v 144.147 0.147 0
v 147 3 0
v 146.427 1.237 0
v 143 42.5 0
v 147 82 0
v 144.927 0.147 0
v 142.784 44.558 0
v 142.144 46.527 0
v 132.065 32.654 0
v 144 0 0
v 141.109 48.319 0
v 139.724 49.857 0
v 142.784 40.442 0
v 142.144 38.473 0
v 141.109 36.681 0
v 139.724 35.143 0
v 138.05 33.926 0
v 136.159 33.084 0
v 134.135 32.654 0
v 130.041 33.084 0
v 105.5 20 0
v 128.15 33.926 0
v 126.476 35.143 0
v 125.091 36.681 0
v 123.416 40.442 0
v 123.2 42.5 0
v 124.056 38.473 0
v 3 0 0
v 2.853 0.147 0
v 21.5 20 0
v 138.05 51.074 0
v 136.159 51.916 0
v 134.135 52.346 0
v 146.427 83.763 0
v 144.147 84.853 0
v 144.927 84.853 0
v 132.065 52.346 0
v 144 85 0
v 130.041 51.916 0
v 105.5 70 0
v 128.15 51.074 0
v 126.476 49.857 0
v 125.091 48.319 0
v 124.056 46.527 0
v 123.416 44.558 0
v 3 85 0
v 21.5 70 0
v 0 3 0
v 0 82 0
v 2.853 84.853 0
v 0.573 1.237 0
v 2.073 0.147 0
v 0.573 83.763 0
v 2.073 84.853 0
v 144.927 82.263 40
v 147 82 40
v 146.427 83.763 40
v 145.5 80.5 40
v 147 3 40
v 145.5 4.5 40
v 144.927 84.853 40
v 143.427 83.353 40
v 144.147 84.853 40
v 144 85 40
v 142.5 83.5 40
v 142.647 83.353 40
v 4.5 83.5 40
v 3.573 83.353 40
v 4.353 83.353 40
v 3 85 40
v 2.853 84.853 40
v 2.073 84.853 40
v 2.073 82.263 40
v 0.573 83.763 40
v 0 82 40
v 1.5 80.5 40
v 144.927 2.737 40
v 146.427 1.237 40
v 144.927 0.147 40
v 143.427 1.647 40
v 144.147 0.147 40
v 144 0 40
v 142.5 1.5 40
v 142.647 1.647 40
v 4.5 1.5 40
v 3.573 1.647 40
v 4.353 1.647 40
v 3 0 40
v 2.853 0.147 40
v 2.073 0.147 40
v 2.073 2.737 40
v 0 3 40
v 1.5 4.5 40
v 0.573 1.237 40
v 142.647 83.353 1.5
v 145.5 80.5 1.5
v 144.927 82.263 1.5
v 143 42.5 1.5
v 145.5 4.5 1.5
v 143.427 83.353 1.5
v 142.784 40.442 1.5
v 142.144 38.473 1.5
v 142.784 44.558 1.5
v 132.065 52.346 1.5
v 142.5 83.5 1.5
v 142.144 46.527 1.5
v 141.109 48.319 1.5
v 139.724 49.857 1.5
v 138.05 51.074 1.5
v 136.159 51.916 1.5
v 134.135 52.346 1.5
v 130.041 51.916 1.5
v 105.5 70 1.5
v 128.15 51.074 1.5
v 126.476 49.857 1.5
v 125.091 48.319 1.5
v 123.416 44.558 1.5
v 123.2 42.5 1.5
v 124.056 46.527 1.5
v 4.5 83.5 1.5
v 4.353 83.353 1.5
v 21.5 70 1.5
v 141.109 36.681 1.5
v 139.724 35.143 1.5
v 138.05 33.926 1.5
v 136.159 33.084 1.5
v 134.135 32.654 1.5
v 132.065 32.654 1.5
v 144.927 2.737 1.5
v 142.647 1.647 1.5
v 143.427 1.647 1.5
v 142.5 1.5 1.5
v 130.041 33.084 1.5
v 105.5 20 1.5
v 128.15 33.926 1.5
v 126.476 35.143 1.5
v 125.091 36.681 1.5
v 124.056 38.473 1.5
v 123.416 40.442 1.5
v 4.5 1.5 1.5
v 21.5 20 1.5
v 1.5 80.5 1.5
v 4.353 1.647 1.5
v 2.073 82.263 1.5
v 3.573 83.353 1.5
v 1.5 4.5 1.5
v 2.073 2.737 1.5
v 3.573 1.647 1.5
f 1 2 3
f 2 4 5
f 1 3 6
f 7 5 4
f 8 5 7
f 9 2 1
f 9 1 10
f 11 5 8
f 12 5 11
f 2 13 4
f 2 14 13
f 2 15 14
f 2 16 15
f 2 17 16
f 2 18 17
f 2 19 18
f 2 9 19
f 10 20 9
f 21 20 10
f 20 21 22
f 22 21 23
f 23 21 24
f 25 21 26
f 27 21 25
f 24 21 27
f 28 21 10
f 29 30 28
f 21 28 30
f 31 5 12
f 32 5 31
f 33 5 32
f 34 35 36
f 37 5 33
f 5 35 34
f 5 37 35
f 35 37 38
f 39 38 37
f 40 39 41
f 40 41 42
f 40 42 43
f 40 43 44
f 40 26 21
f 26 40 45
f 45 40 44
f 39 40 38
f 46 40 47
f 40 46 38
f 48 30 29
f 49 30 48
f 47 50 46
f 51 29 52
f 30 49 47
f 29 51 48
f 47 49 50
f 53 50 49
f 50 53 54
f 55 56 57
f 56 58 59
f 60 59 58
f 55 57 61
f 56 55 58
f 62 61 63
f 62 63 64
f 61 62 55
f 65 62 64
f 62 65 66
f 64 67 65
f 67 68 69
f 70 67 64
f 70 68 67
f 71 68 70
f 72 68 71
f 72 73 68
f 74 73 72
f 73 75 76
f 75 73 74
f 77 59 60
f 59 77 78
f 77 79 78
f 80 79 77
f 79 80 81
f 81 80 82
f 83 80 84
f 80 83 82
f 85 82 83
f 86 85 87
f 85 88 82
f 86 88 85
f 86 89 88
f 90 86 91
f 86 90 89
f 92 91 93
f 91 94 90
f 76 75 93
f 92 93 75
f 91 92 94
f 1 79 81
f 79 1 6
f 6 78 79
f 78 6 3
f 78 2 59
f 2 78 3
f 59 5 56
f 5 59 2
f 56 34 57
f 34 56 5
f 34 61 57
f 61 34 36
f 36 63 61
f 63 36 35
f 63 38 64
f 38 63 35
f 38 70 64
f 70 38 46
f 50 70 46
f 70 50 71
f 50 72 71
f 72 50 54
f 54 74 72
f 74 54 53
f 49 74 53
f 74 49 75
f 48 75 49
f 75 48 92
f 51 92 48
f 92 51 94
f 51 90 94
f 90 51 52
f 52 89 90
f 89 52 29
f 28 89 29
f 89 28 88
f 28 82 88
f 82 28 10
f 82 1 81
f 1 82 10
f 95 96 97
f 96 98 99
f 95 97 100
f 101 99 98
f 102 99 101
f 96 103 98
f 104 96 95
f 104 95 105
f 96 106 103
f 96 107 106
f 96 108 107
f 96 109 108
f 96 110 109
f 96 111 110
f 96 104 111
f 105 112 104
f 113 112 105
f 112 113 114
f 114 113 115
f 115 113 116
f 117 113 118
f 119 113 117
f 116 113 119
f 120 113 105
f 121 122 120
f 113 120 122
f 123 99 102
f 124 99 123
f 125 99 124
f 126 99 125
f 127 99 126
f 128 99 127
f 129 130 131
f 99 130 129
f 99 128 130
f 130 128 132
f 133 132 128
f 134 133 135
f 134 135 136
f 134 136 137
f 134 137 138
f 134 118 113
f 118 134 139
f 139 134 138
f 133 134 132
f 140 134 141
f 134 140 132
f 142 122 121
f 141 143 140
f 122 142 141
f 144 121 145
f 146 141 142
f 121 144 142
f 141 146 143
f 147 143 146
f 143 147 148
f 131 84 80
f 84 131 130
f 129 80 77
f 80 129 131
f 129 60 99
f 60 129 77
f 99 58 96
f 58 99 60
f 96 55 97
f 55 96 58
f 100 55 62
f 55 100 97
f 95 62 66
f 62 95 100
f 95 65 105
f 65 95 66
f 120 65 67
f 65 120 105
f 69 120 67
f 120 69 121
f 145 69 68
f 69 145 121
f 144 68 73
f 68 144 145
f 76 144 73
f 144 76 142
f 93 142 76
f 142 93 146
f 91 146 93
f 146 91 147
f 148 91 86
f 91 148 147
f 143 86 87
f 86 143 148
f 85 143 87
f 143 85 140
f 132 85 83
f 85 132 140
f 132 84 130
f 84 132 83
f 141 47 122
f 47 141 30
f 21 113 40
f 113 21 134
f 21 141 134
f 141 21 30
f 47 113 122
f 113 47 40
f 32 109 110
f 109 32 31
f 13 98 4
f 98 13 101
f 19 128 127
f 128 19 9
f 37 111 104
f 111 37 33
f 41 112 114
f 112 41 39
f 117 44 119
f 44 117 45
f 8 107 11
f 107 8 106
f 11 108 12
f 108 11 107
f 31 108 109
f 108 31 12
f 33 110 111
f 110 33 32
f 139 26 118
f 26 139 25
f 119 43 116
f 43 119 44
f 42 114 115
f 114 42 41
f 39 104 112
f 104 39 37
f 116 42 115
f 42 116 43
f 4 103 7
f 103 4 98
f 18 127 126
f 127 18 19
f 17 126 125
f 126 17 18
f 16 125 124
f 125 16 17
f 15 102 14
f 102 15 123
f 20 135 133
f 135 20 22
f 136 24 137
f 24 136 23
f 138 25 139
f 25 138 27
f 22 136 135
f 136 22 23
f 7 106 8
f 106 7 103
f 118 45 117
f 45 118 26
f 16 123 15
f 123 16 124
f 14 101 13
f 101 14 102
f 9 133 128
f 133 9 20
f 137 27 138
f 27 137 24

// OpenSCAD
BaseWidth = 147;
BaseDepth = 85;
BaseHeight = 40;
CornerRadius = 3;
WallThickness = 1.5;
LCDScreenWidth=84;
LCDScreenHeight=50;
LCDScreenX=21.5;
LCDScreenY=20;
SmokeSensorRadius = 9.9;
SmokeSensorX=BaseWidth-WallThickness*2-1-SmokeSensorRadius;
SmokeSensorY=BaseDepth/2;
LEDRadius=1.6;
LEDX=SmokeSensorX;
LEDY=SmokeSensorY+35;

module RoundedRectangle($Width=BaseWidth, $Depth=BaseDepth, $Radius=CornerRadius) 
{
    polygon(points = [[$Radius, 0], [$Width-$Radius, 0],[$Width, $Radius], [$Width, $Depth-$Radius], [$Width-$Radius, $Depth], [$Radius, $Depth], [0, $Depth-$Radius], [0, $Radius]], paths=[[0,1,2,3,4,5,6,7]]);
        
    translate([$Radius,$Radius,0]){
        circle(r=$Radius);
    }        
    translate([$Width-$Radius,$Radius,0]){
        circle(r=$Radius);
    }
    
    translate([$Width-$Radius,$Depth-$Radius,0]){ 
        circle(r=$Radius);
    }
    
    translate([$Radius,$Depth-$Radius,0]){ 
        circle(r=$Radius);
    }
}


module base3D($Width=BaseWidth, $Depth=BaseDepth, $Height=BaseHeight, $Radius=CornerRadius, $Thickness=WallThickness)
{
    difference()
    {
        linear_extrude(height = $Height, center = false, convexity = 0, twist = 0)
        RoundedRectangle($Width, $Depth, $Radius);
        translate([$Thickness, $Thickness, $Thickness]) {
        linear_extrude(height = $Height, center = false, convexity = 0, twist = 0)
        RoundedRectangle($Width-$Thickness*2, $Depth-$Thickness*2, $Radius);
        }
    }
}

difference() {
    base3D(BaseWidth, BaseDepth, BaseHeight, CornerRadius, WallThickness);
    translate([LCDScreenX, LCDScreenY, 0]) {
        cube(size=[LCDScreenWidth, LCDScreenHeight, WallThickness], center=false);
    }
    translate([SmokeSensorX, SmokeSensorY, 0]){
        cylinder(h=WallThickness, r1=SmokeSensorRadius, r2=SmokeSensorRadius, center=false);
    }
//    translate([LEDX, LEDY, 0]){
//        cylinder(h=WallThickness, r1=LEDRadius, r2=LEDRadius, center=false);
//    }
//    translate([0, 200+28, 142+30]){
//        rotate([135, 0, 0]){
//            cube(size=[200, 200, 200], center=false);
//        }
//    }
/*    
    translate([0, 0, 33]){
        rotate([45, 0, 0]){
            cube(size=[BaseWidth, BaseDepth/1.42, 200], center=false);
        }
    }
*/
}

/*
difference() {
    translate([0, 0, 33]){
        rotate([45, 0, 0]){
            cube(size=[BaseWidth, BaseDepth/1.42, 200], center=false);
        }
    }

    translate([0, -2, 35]){
        rotate([45, 0, 0]){
            cube(size=[BaseWidth+2, BaseDepth/1.42+2, 200+2], center=false);
        }
    }
}
*/
